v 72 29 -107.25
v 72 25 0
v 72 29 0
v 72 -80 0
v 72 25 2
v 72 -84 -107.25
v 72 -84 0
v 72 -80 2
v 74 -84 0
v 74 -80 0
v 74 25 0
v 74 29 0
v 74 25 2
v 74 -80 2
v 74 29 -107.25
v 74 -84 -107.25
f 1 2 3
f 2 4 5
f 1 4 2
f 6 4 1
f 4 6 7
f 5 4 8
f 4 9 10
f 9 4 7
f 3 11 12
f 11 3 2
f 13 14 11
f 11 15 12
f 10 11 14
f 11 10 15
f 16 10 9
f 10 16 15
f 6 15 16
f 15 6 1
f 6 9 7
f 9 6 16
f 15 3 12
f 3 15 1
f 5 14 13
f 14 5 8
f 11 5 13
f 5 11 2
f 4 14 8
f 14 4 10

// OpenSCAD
/*
  Seed imaging system case with experimental collector

  Starting point:
    A simple rectangular base plate for the vacuum/rocking seed imaging system.
*/

$fn = 48;

// Choose what OpenSCAD shows/exports.
part_to_show = "right_side"; // "assembly", "plate", "front", "back", "left_side", "right_side", "sides", "collector", "lower_frame", "bottom"

// Base plate dimensions.
plate_w = 210;      // mm
plate_h = 180;      // mm
plate_thick = 2;    // mm
corner_r = 2;       // mm, just enough to remove sharp corners
wall_slot_clearance = 0.3; // mm extra slot size for sliding wall parts into plate

// Cutout matching the outer tray footprint of the moving funnel adapter.
funnel_cutout_w = 124;       // mm, long side plus clearance for rotation
funnel_cutout_h = 87;        // mm, short side plus clearance for rotation
funnel_front_gap = 20;       // mm from front long edge of plate to cutout
funnel_cutout_r = 2;         // mm, slight radius to avoid sharp internal corners
funnel_cutout_y = -plate_h/2 + funnel_front_gap + funnel_cutout_h/2;

// Front wall for the vacuum adapter interface, hanging down from the top plate.
front_wall_offset_from_cutout = 12; // mm from front edge of cutout toward plate front
front_wall_extra_w = 10;            // mm extension beyond each cutout side
front_wall_w = funnel_cutout_w + 2 * front_wall_extra_w;
front_wall_h = 101.25;              // mm, bottom is 72 mm below front circle center
front_wall_thick = 2;               // mm
front_wall_y = funnel_cutout_y - funnel_cutout_h/2 - front_wall_offset_from_cutout - front_wall_thick;
back_wall_offset_from_cutout = 10;  // mm from back edge of cutout toward plate back
back_wall_y = funnel_cutout_y + funnel_cutout_h/2 + back_wall_offset_from_cutout;
side_wall_thick = front_wall_thick;
side_wall_y = front_wall_y;
side_wall_depth = back_wall_y + front_wall_thick - front_wall_y;

// Circular opening in the front wall for the static funnel-system spout.
static_spout_outer_d = 31.5;       // mm, current static male spout OD
front_wall_spout_clearance = 1;    // mm extra diameter clearance
front_wall_spout_cutout_d = static_spout_outer_d + front_wall_spout_clearance;
front_wall_spout_top_drop = 15;    // mm below top surface of plate
front_wall_spout_center_z = plate_thick - front_wall_spout_top_drop - front_wall_spout_cutout_d/2;
front_wall_tab_margin = 10;      // mm material around circular spout tab
front_wall_tab_x = -front_wall_spout_cutout_d/2 - front_wall_tab_margin;
front_wall_tab_w = front_wall_spout_cutout_d + 2 * front_wall_tab_margin;
front_back_wall_bottom_clearance = 10; // mm below circular cutout bottom
front_back_wall_bottom_z = front_wall_spout_center_z - front_wall_spout_cutout_d/2 - front_back_wall_bottom_clearance;
front_back_wall_h = -front_back_wall_bottom_z;

// Rectangular opening in the back wall, aligned with the spout opening height.
back_wall_rect_cutout_w = 40;   // mm, long horizontal edge
back_wall_rect_cutout_h = 20;   // mm, vertical edge
back_wall_rect_cutout_x_shift = -11; // mm, left shift from spout center
back_wall_notch_size = 7;       // mm square notch centered on right edge
back_wall_notch_overlap = 0.5;  // mm overlap to avoid a zero-width seam
back_wall_tab_margin = 10;      // mm material around motor cutout tab
back_wall_cutout_min_x = back_wall_rect_cutout_x_shift - back_wall_rect_cutout_w/2;
back_wall_cutout_max_x = back_wall_rect_cutout_x_shift + back_wall_rect_cutout_w/2 + back_wall_notch_size;
back_wall_tab_x = back_wall_cutout_min_x - back_wall_tab_margin;
back_wall_tab_w = back_wall_cutout_max_x - back_wall_cutout_min_x + 2 * back_wall_tab_margin;
back_wall_servo_pad_thick = 4;    // mm extra thickness behind servo mount area
back_wall_servo_pad_margin = 6;   // mm material around the motor rectangle cutout
// Experimental lower collector dimensions.
total_system_h = 190;              // mm, target total height from top of plate to floor
floor_z = plate_thick - total_system_h;
upper_wall_bottom_z = -front_wall_h;
collector_drop_h = upper_wall_bottom_z - floor_z;
collector_wall = 2;                // mm wall thickness for chute/outlet
collector_outlet_od = 30;          // mm outer diameter for seed packet interface
collector_outlet_id = collector_outlet_od - 2 * collector_wall;
collector_outlet_len = 24;         // mm, angled tube length; shorter leaves room for the funnel slope
collector_neck_overlap = 8;        // mm overlap into throat so the angled neck and funnel connect solidly
collector_outlet_angle = 135;      // degrees; cylinder axis points 45 degrees down toward the front
collector_floor_clearance = 35;    // mm from floor to lowest outside edge of outlet mouth
collector_outlet_end_z = floor_z + collector_floor_clearance + collector_outlet_od/2;
collector_outlet_start_z = collector_outlet_end_z - collector_outlet_len * cos(collector_outlet_angle);
collector_outlet_start_y = front_wall_y + 28;
collector_outlet_end_y = collector_outlet_start_y - collector_outlet_len * sin(collector_outlet_angle);
collector_top_margin = 3;          // mm inset from inside wall span
collector_post = 8;                // mm square lower frame corner posts
collector_base_rail_h = 8;         // mm height of bottom rails
collector_base_rail_thick = 6;     // mm thickness of bottom rails
collector_lip_h = 4;               // mm thick top lip tying collector mouth into lower posts
collector_lip_overlap_up = 1;      // mm overlap into upper walls for preview/alignment before adding slots
bottom_wall_notch_depth = 6;       // mm deep receiver notch for side walls in the bottom piece
side_wall_h = front_wall_h + bottom_wall_notch_depth; // mm side walls extend into bottom notches
side_wall_top_tab_inset = 4;      // mm shorter at each end to make a shoulder stop under the top plate
front_back_wall_top_tab_inset = 4; // mm shorter at each end for front/back top plate shoulder stops
tray_boundary_wall_thick = 6;     // mm, wider than 2 mm front/back walls for future notches
tray_boundary_wall_h = 6;         // mm small raised boundary at front/back tray edges
tray_boundary_wall_x_margin = 4;  // mm extra length beyond matching front/back wall pieces
tray_boundary_wall_side_inset = side_wall_thick/2 + collector_post/2; // mm keeps rails clear of side walls
front_back_diag_frame_w = 8;      // mm width of trapezoid-frame brace bands
front_back_diag_wall_overlap = 1; // mm overlap so brace merges cleanly into front/back wall
front_back_diag_inner_base_inset = 22; // mm larger values make the inner triangle less obtuse
front_back_diag_end_inset = 14;   // mm keeps brace feet shy of side-wall/funnel corners
front_back_diag_tab_w = 12;       // mm width of rectangular feet that seat in tray-wall notches
front_back_diag_tab_h = tray_boundary_wall_h; // mm foot height matching the tray wall height
front_back_diag_notch_clearance = wall_slot_clearance; // mm extra room around brace feet

// Makes a 2D rounded rectangle profile.
module rounded_rect_2d(w, h, r) {
  offset(r = r)
    square([w - 2*r, h - 2*r], center = true);
}

// Makes the main rectangular base plate with lightly rounded corners.
module base_plate() {
  linear_extrude(height = plate_thick)
    rounded_rect_2d(plate_w, plate_h, corner_r);
}

// Cuts the moving funnel adapter tray footprint through the plate. The long
// side of the cutout runs parallel to the long side of the plate.
module funnel_tray_cutout() {
  translate([0, funnel_cutout_y, -0.5])
    linear_extrude(height = plate_thick + 1)
      rounded_rect_2d(funnel_cutout_w, funnel_cutout_h, funnel_cutout_r);
}

// Cuts the round spout opening through the front wall.
module front_wall_spout_cutout() {
  translate([0, front_wall_y + front_wall_thick/2, front_wall_spout_center_z])
    rotate([90, 0, 0])
      cylinder(h = front_wall_thick + 1, d = front_wall_spout_cutout_d, center = true);
}


// Makes a trapezoid-shaped wall extension with a triangular center opening.
// The two lower rectangular feet seat into matching notches in the tray wall.
module front_back_trapezoid_brace_at(wall_x, wall_w, y, y_thick) {
  top_left = wall_x;
  top_right = wall_x + wall_w;
  foot_left_center = -front_wall_w/2 + front_back_diag_end_inset;
  foot_right_center = front_wall_w/2 - front_back_diag_end_inset;
  foot_left_outer = foot_left_center - front_back_diag_tab_w/2;
  foot_left_inner = foot_left_center + front_back_diag_tab_w/2;
  foot_right_inner = foot_right_center - front_back_diag_tab_w/2;
  foot_right_outer = foot_right_center + front_back_diag_tab_w/2;
  z_top = front_back_wall_bottom_z + front_back_diag_wall_overlap;
  z_bottom = upper_wall_bottom_z;
  z_foot_top = upper_wall_bottom_z + front_back_diag_tab_h;

  translate([0, y + y_thick, 0])
    rotate([90, 0, 0])
      linear_extrude(height = y_thick)
        polygon(points = [
          [top_left, z_top],
          [top_right, z_top],
          [foot_right_outer, z_foot_top],
          [foot_right_outer, z_bottom],
          [foot_left_outer, z_bottom],
          [foot_left_outer, z_foot_top]
        ]);
}
// Makes the front vertical wall below the plate.
module front_wall() {
  front_wall_top_tab_x = front_wall_tab_x + front_back_wall_top_tab_inset;
  front_wall_top_tab_w = front_wall_tab_w - 2 * front_back_wall_top_tab_inset;

  difference() {
    union() {
      translate([front_wall_tab_x, front_wall_y, front_back_wall_bottom_z])
        cube([front_wall_tab_w, front_wall_thick, front_back_wall_h], center = false);
      translate([front_wall_top_tab_x, front_wall_y, 0])
        cube([front_wall_top_tab_w, front_wall_thick, plate_thick], center = false);
      front_back_trapezoid_brace_at(front_wall_tab_x, front_wall_tab_w, front_wall_y, front_wall_thick);
    }
    front_wall_spout_cutout();
  }
}

// Cuts the rectangular opening through the back wall.
module back_wall_rect_cutout() {
  union() {
    translate([back_wall_rect_cutout_x_shift - back_wall_rect_cutout_w/2,
               back_wall_y - 0.5,
               front_wall_spout_center_z - back_wall_rect_cutout_h/2])
      cube([back_wall_rect_cutout_w, front_wall_thick + back_wall_servo_pad_thick + 1, back_wall_rect_cutout_h], center = false);

    translate([back_wall_rect_cutout_x_shift + back_wall_rect_cutout_w/2 - back_wall_notch_overlap,
               back_wall_y - 0.5,
               front_wall_spout_center_z - back_wall_notch_size/2])
      cube([back_wall_notch_size + back_wall_notch_overlap, front_wall_thick + back_wall_servo_pad_thick + 1, back_wall_notch_size], center = false);
  }
}


// Adds localized thickness behind the motor cutout for servo mounting screws.
module back_wall_servo_mount_pad() {
  pad_x = back_wall_tab_x;
  pad_w = back_wall_tab_w;
  pad_z = front_wall_spout_center_z - back_wall_rect_cutout_h/2 - back_wall_servo_pad_margin;
  pad_h = back_wall_rect_cutout_h + 2 * back_wall_servo_pad_margin;

  translate([pad_x, back_wall_y + front_wall_thick, pad_z])
    cube([pad_w, back_wall_servo_pad_thick, pad_h], center = false);
}
// Makes the back vertical wall below the plate, mirrored from the front wall.
module back_wall() {
  back_wall_top_tab_x = back_wall_tab_x + front_back_wall_top_tab_inset;
  back_wall_top_tab_w = back_wall_tab_w - 2 * front_back_wall_top_tab_inset;

  difference() {
    union() {
      translate([back_wall_tab_x, back_wall_y, front_back_wall_bottom_z])
        cube([back_wall_tab_w, front_wall_thick, front_back_wall_h], center = false);
      translate([back_wall_top_tab_x, back_wall_y, 0])
        cube([back_wall_top_tab_w, front_wall_thick, plate_thick], center = false);
      front_back_trapezoid_brace_at(back_wall_tab_x, back_wall_tab_w, back_wall_y, front_wall_thick);
      back_wall_servo_mount_pad();
    }
    back_wall_rect_cutout();
  }
}

// Makes side walls that connect the front and back walls while preserving
// the 144 mm interior span between their inside faces.
module side_wall(side) {
  x = side < 0 ? -front_wall_w/2 - side_wall_thick : front_wall_w/2;
  tab_y = side_wall_y + side_wall_top_tab_inset;
  tab_depth = side_wall_depth - 2 * side_wall_top_tab_inset;

  union() {
    translate([x, side_wall_y, -side_wall_h])
      cube([side_wall_thick, side_wall_depth, side_wall_h], center = false);

    translate([x, tab_y, 0])
      cube([side_wall_thick, tab_depth, plate_thick], center = false);
  }
}

module side_walls() {
  side_wall(-1);
  side_wall(1);
}
// Makes a very thin rectangular face used as the open mouth of the collector chute.
module collector_top_patch(w, d, z) {
  translate([-w/2, side_wall_y + collector_top_margin, z])
    cube([w, d, 0.4], center = false);
}

// Makes a very thin circular face used as the lower throat of the collector chute.
module collector_circle_patch(d, y, z) {
  translate([0, y, z])
    cylinder(h = 0.4, d = d, center = true);
}


// Adds a broad lip at the top of the collector so the funnel clearly rests on the lower posts
// and closes the gap to the original side wall pieces.
module collector_top_lip_outer() {
  lip_x = -front_wall_w/2 - side_wall_thick/2 - collector_post/2;
  lip_y = side_wall_y;
  lip_w = front_wall_w + side_wall_thick + collector_post;
  lip_d = side_wall_depth;

  translate([lip_x, lip_y, upper_wall_bottom_z - collector_lip_h])
    cube([lip_w, lip_d, collector_lip_h + collector_lip_overlap_up], center = false);
}

// Keeps the collector lip open so seeds can drop into the funnel.
module collector_top_lip_void() {
  opening_w = front_wall_w - 2 * collector_wall;
  opening_d = side_wall_depth - 2 * collector_wall;

  translate([-opening_w/2,
             side_wall_y + collector_wall,
             upper_wall_bottom_z - collector_lip_h - 0.5])
    cube([opening_w, opening_d, collector_lip_h + 3], center = false);
}
// Outer solid rectangular-to-round collector funnel.
module collector_chute_outer() {
  top_w_outer = front_wall_w - 2 * collector_top_margin;
  top_d_outer = side_wall_depth - 2 * collector_top_margin;

  hull() {
    collector_top_patch(top_w_outer, top_d_outer, upper_wall_bottom_z - 0.4);
    collector_circle_patch(collector_outlet_od + 2 * collector_wall, collector_outlet_start_y, collector_outlet_start_z);
  }
}

// Continuous inner void for the rectangular-to-round collector funnel.
module collector_chute_void() {
  top_w_outer = front_wall_w - 2 * collector_top_margin;
  top_d_outer = side_wall_depth - 2 * collector_top_margin;
  top_w_inner = top_w_outer - 2 * collector_wall;
  top_d_inner = top_d_outer - 2 * collector_wall;

  hull() {
    collector_top_patch(top_w_inner, top_d_inner, upper_wall_bottom_z + 1.5);
    collector_circle_patch(collector_outlet_id, collector_outlet_start_y, collector_outlet_start_z);
  }
}


// Adds material only behind the circular throat to close the rear-side gap.
// The shared inner void is subtracted later, so this reinforces the wall without blocking flow.
module collector_rear_throat_seal_outer() {
  seal_d = collector_outlet_od + 2 * collector_wall;
  seal_h = 8;

  intersection() {
    translate([0, collector_outlet_start_y, collector_outlet_start_z - seal_h/2])
      cylinder(h = seal_h, d = seal_d, center = false);

    translate([-seal_d/2,
               collector_outlet_start_y,
               collector_outlet_start_z - seal_h/2])
      cube([seal_d, seal_d/2 + collector_wall, seal_h], center = false);
  }
}
// Outer solid for the tilted outlet neck that the seed packet can wrap around.
module collector_outlet_neck_outer() {
  translate([0,
             collector_outlet_start_y + collector_neck_overlap * sin(collector_outlet_angle),
             collector_outlet_start_z - collector_neck_overlap * cos(collector_outlet_angle)])
    rotate([collector_outlet_angle, 0, 0])
      cylinder(h = collector_outlet_len + collector_neck_overlap, d = collector_outlet_od, center = false);
}

// Continuous inner void through the tilted outlet neck.
module collector_outlet_neck_void() {
  translate([0,
             collector_outlet_start_y + collector_neck_overlap * sin(collector_outlet_angle),
             collector_outlet_start_z - collector_neck_overlap * cos(collector_outlet_angle)])
    rotate([collector_outlet_angle, 0, 0])
      translate([0, 0, -0.5])
        cylinder(h = collector_outlet_len + collector_neck_overlap + 1, d = collector_outlet_id, center = false);
}


// Adds small front/back boundary walls on the collector tray lip.
// These are wider than the front/back wall thickness so future receiver notches
// can leave material on both sides of the descending wall extensions.
module collector_tray_boundary_walls_outer() {
  edge_x = -front_wall_w/2 - side_wall_thick/2 - collector_post/2 + tray_boundary_wall_side_inset;
  edge_w = front_wall_w + side_wall_thick + collector_post - 2 * tray_boundary_wall_side_inset;
  z0 = upper_wall_bottom_z;

  translate([edge_x,
             front_wall_y + front_wall_thick/2 - tray_boundary_wall_thick/2,
             z0])
    cube([edge_w, tray_boundary_wall_thick, tray_boundary_wall_h], center = false);

  translate([edge_x,
             back_wall_y + front_wall_thick/2 - tray_boundary_wall_thick/2,
             z0])
    cube([edge_w, tray_boundary_wall_thick, tray_boundary_wall_h], center = false);
}
// Makes the internal seed collector as one continuous hollow funnel and angled neck.
module collector_funnel() {
  difference() {
    union() {
      collector_top_lip_outer();
      collector_tray_boundary_walls_outer();
      collector_chute_outer();
      collector_rear_throat_seal_outer();
      collector_outlet_neck_outer();
    }

    union() {
      collector_chute_void();
      collector_outlet_neck_void();
    }
  }
}

// Adds a light lower frame so the final assembly reaches 190 mm without
// relying on the funnel shell as the only support.
module lower_frame() {
  x_left = -front_wall_w/2 - side_wall_thick/2 - collector_post/2;
  x_right = front_wall_w/2 + side_wall_thick/2 - collector_post/2;
  y_front = side_wall_y;
  y_back = side_wall_y + side_wall_depth - collector_post;

  union() {
    for (x = [x_left, x_right])
      for (y = [y_front, y_back])
        translate([x, y, floor_z])
          cube([collector_post, collector_post, collector_drop_h], center = false);

    translate([x_left, y_back, floor_z])
      cube([x_right + collector_post - x_left, collector_base_rail_thick, collector_base_rail_h], center = false);

    for (x = [x_left, x_right])
      translate([x, y_front, floor_z])
        cube([collector_post, side_wall_depth, collector_base_rail_h], center = false);
  }
}



// Cuts receiver notches into the top of the bottom module for the two side walls.
module bottom_side_wall_notches() {
  c = wall_slot_clearance;
  z0 = upper_wall_bottom_z - bottom_wall_notch_depth;
  h = bottom_wall_notch_depth + collector_lip_overlap_up + 1;

  translate([-front_wall_w/2 - side_wall_thick - c/2,
             side_wall_y - c/2,
             z0])
    cube([side_wall_thick + c, side_wall_depth + c, h], center = false);

  translate([front_wall_w/2 - c/2,
             side_wall_y - c/2,
             z0])
    cube([side_wall_thick + c, side_wall_depth + c, h], center = false);
}

// Cuts one long receiver groove in each tray rail for the front/back brace base.
module front_back_brace_foot_notches() {
  c = front_back_diag_notch_clearance;
  groove_w = front_wall_w - 2 * front_back_diag_end_inset + front_back_diag_tab_w + c;
  groove_y = front_wall_thick + c;
  groove_h = front_back_diag_tab_h + c;
  wall_ys = [front_wall_y, back_wall_y];

  for (y = wall_ys)
    translate([-groove_w/2,
               y - c/2,
               upper_wall_bottom_z - c/2])
      cube([groove_w, groove_y, groove_h], center = false);
}
// Makes the new lower modular piece: collector funnel plus its support frame.
// The original side walls remain separate modules so we can add slide-fit features next.
module bottom_piece() {
  difference() {
    union() {
      collector_funnel();
      lower_frame();
    }
    bottom_side_wall_notches();
    front_back_brace_foot_notches();
  }
}
// Cuts slots through the top plate matching the top footprint of each wall/tab.
module wall_slot_cutouts() {
  c = wall_slot_clearance;

  translate([front_wall_tab_x + front_back_wall_top_tab_inset - c/2, front_wall_y - c/2, -0.5])
    cube([front_wall_tab_w - 2 * front_back_wall_top_tab_inset + c, front_wall_thick + c, plate_thick + 1], center = false);

  translate([back_wall_tab_x + front_back_wall_top_tab_inset - c/2, back_wall_y - c/2, -0.5])
    cube([back_wall_tab_w - 2 * front_back_wall_top_tab_inset + c, front_wall_thick + c, plate_thick + 1], center = false);

  translate([-front_wall_w/2 - side_wall_thick - c/2,
             side_wall_y + side_wall_top_tab_inset - c/2,
             -0.5])
    cube([side_wall_thick + c,
          side_wall_depth - 2 * side_wall_top_tab_inset + c,
          plate_thick + 1], center = false);

  translate([front_wall_w/2 - c/2,
             side_wall_y + side_wall_top_tab_inset - c/2,
             -0.5])
    cube([side_wall_thick + c,
          side_wall_depth - 2 * side_wall_top_tab_inset + c,
          plate_thick + 1], center = false);
}
module case_plate() {
  difference() {
    base_plate();
    funnel_tray_cutout();
    wall_slot_cutouts();
  }
}

module case_assembly() {
  union() {
    case_plate();
    front_wall();
    back_wall();
    side_walls();
    bottom_piece();
  }
}

if (part_to_show == "plate") {
  case_plate();
} else if (part_to_show == "front") {
  front_wall();
} else if (part_to_show == "back") {
  back_wall();
} else if (part_to_show == "left_side") {
  side_wall(-1);
} else if (part_to_show == "right_side") {
  side_wall(1);
} else if (part_to_show == "sides") {
  side_walls();
} else if (part_to_show == "collector") {
  collector_funnel();
} else if (part_to_show == "lower_frame") {
  lower_frame();
} else if (part_to_show == "bottom") {
  bottom_piece();
} else {
  case_assembly();
}
